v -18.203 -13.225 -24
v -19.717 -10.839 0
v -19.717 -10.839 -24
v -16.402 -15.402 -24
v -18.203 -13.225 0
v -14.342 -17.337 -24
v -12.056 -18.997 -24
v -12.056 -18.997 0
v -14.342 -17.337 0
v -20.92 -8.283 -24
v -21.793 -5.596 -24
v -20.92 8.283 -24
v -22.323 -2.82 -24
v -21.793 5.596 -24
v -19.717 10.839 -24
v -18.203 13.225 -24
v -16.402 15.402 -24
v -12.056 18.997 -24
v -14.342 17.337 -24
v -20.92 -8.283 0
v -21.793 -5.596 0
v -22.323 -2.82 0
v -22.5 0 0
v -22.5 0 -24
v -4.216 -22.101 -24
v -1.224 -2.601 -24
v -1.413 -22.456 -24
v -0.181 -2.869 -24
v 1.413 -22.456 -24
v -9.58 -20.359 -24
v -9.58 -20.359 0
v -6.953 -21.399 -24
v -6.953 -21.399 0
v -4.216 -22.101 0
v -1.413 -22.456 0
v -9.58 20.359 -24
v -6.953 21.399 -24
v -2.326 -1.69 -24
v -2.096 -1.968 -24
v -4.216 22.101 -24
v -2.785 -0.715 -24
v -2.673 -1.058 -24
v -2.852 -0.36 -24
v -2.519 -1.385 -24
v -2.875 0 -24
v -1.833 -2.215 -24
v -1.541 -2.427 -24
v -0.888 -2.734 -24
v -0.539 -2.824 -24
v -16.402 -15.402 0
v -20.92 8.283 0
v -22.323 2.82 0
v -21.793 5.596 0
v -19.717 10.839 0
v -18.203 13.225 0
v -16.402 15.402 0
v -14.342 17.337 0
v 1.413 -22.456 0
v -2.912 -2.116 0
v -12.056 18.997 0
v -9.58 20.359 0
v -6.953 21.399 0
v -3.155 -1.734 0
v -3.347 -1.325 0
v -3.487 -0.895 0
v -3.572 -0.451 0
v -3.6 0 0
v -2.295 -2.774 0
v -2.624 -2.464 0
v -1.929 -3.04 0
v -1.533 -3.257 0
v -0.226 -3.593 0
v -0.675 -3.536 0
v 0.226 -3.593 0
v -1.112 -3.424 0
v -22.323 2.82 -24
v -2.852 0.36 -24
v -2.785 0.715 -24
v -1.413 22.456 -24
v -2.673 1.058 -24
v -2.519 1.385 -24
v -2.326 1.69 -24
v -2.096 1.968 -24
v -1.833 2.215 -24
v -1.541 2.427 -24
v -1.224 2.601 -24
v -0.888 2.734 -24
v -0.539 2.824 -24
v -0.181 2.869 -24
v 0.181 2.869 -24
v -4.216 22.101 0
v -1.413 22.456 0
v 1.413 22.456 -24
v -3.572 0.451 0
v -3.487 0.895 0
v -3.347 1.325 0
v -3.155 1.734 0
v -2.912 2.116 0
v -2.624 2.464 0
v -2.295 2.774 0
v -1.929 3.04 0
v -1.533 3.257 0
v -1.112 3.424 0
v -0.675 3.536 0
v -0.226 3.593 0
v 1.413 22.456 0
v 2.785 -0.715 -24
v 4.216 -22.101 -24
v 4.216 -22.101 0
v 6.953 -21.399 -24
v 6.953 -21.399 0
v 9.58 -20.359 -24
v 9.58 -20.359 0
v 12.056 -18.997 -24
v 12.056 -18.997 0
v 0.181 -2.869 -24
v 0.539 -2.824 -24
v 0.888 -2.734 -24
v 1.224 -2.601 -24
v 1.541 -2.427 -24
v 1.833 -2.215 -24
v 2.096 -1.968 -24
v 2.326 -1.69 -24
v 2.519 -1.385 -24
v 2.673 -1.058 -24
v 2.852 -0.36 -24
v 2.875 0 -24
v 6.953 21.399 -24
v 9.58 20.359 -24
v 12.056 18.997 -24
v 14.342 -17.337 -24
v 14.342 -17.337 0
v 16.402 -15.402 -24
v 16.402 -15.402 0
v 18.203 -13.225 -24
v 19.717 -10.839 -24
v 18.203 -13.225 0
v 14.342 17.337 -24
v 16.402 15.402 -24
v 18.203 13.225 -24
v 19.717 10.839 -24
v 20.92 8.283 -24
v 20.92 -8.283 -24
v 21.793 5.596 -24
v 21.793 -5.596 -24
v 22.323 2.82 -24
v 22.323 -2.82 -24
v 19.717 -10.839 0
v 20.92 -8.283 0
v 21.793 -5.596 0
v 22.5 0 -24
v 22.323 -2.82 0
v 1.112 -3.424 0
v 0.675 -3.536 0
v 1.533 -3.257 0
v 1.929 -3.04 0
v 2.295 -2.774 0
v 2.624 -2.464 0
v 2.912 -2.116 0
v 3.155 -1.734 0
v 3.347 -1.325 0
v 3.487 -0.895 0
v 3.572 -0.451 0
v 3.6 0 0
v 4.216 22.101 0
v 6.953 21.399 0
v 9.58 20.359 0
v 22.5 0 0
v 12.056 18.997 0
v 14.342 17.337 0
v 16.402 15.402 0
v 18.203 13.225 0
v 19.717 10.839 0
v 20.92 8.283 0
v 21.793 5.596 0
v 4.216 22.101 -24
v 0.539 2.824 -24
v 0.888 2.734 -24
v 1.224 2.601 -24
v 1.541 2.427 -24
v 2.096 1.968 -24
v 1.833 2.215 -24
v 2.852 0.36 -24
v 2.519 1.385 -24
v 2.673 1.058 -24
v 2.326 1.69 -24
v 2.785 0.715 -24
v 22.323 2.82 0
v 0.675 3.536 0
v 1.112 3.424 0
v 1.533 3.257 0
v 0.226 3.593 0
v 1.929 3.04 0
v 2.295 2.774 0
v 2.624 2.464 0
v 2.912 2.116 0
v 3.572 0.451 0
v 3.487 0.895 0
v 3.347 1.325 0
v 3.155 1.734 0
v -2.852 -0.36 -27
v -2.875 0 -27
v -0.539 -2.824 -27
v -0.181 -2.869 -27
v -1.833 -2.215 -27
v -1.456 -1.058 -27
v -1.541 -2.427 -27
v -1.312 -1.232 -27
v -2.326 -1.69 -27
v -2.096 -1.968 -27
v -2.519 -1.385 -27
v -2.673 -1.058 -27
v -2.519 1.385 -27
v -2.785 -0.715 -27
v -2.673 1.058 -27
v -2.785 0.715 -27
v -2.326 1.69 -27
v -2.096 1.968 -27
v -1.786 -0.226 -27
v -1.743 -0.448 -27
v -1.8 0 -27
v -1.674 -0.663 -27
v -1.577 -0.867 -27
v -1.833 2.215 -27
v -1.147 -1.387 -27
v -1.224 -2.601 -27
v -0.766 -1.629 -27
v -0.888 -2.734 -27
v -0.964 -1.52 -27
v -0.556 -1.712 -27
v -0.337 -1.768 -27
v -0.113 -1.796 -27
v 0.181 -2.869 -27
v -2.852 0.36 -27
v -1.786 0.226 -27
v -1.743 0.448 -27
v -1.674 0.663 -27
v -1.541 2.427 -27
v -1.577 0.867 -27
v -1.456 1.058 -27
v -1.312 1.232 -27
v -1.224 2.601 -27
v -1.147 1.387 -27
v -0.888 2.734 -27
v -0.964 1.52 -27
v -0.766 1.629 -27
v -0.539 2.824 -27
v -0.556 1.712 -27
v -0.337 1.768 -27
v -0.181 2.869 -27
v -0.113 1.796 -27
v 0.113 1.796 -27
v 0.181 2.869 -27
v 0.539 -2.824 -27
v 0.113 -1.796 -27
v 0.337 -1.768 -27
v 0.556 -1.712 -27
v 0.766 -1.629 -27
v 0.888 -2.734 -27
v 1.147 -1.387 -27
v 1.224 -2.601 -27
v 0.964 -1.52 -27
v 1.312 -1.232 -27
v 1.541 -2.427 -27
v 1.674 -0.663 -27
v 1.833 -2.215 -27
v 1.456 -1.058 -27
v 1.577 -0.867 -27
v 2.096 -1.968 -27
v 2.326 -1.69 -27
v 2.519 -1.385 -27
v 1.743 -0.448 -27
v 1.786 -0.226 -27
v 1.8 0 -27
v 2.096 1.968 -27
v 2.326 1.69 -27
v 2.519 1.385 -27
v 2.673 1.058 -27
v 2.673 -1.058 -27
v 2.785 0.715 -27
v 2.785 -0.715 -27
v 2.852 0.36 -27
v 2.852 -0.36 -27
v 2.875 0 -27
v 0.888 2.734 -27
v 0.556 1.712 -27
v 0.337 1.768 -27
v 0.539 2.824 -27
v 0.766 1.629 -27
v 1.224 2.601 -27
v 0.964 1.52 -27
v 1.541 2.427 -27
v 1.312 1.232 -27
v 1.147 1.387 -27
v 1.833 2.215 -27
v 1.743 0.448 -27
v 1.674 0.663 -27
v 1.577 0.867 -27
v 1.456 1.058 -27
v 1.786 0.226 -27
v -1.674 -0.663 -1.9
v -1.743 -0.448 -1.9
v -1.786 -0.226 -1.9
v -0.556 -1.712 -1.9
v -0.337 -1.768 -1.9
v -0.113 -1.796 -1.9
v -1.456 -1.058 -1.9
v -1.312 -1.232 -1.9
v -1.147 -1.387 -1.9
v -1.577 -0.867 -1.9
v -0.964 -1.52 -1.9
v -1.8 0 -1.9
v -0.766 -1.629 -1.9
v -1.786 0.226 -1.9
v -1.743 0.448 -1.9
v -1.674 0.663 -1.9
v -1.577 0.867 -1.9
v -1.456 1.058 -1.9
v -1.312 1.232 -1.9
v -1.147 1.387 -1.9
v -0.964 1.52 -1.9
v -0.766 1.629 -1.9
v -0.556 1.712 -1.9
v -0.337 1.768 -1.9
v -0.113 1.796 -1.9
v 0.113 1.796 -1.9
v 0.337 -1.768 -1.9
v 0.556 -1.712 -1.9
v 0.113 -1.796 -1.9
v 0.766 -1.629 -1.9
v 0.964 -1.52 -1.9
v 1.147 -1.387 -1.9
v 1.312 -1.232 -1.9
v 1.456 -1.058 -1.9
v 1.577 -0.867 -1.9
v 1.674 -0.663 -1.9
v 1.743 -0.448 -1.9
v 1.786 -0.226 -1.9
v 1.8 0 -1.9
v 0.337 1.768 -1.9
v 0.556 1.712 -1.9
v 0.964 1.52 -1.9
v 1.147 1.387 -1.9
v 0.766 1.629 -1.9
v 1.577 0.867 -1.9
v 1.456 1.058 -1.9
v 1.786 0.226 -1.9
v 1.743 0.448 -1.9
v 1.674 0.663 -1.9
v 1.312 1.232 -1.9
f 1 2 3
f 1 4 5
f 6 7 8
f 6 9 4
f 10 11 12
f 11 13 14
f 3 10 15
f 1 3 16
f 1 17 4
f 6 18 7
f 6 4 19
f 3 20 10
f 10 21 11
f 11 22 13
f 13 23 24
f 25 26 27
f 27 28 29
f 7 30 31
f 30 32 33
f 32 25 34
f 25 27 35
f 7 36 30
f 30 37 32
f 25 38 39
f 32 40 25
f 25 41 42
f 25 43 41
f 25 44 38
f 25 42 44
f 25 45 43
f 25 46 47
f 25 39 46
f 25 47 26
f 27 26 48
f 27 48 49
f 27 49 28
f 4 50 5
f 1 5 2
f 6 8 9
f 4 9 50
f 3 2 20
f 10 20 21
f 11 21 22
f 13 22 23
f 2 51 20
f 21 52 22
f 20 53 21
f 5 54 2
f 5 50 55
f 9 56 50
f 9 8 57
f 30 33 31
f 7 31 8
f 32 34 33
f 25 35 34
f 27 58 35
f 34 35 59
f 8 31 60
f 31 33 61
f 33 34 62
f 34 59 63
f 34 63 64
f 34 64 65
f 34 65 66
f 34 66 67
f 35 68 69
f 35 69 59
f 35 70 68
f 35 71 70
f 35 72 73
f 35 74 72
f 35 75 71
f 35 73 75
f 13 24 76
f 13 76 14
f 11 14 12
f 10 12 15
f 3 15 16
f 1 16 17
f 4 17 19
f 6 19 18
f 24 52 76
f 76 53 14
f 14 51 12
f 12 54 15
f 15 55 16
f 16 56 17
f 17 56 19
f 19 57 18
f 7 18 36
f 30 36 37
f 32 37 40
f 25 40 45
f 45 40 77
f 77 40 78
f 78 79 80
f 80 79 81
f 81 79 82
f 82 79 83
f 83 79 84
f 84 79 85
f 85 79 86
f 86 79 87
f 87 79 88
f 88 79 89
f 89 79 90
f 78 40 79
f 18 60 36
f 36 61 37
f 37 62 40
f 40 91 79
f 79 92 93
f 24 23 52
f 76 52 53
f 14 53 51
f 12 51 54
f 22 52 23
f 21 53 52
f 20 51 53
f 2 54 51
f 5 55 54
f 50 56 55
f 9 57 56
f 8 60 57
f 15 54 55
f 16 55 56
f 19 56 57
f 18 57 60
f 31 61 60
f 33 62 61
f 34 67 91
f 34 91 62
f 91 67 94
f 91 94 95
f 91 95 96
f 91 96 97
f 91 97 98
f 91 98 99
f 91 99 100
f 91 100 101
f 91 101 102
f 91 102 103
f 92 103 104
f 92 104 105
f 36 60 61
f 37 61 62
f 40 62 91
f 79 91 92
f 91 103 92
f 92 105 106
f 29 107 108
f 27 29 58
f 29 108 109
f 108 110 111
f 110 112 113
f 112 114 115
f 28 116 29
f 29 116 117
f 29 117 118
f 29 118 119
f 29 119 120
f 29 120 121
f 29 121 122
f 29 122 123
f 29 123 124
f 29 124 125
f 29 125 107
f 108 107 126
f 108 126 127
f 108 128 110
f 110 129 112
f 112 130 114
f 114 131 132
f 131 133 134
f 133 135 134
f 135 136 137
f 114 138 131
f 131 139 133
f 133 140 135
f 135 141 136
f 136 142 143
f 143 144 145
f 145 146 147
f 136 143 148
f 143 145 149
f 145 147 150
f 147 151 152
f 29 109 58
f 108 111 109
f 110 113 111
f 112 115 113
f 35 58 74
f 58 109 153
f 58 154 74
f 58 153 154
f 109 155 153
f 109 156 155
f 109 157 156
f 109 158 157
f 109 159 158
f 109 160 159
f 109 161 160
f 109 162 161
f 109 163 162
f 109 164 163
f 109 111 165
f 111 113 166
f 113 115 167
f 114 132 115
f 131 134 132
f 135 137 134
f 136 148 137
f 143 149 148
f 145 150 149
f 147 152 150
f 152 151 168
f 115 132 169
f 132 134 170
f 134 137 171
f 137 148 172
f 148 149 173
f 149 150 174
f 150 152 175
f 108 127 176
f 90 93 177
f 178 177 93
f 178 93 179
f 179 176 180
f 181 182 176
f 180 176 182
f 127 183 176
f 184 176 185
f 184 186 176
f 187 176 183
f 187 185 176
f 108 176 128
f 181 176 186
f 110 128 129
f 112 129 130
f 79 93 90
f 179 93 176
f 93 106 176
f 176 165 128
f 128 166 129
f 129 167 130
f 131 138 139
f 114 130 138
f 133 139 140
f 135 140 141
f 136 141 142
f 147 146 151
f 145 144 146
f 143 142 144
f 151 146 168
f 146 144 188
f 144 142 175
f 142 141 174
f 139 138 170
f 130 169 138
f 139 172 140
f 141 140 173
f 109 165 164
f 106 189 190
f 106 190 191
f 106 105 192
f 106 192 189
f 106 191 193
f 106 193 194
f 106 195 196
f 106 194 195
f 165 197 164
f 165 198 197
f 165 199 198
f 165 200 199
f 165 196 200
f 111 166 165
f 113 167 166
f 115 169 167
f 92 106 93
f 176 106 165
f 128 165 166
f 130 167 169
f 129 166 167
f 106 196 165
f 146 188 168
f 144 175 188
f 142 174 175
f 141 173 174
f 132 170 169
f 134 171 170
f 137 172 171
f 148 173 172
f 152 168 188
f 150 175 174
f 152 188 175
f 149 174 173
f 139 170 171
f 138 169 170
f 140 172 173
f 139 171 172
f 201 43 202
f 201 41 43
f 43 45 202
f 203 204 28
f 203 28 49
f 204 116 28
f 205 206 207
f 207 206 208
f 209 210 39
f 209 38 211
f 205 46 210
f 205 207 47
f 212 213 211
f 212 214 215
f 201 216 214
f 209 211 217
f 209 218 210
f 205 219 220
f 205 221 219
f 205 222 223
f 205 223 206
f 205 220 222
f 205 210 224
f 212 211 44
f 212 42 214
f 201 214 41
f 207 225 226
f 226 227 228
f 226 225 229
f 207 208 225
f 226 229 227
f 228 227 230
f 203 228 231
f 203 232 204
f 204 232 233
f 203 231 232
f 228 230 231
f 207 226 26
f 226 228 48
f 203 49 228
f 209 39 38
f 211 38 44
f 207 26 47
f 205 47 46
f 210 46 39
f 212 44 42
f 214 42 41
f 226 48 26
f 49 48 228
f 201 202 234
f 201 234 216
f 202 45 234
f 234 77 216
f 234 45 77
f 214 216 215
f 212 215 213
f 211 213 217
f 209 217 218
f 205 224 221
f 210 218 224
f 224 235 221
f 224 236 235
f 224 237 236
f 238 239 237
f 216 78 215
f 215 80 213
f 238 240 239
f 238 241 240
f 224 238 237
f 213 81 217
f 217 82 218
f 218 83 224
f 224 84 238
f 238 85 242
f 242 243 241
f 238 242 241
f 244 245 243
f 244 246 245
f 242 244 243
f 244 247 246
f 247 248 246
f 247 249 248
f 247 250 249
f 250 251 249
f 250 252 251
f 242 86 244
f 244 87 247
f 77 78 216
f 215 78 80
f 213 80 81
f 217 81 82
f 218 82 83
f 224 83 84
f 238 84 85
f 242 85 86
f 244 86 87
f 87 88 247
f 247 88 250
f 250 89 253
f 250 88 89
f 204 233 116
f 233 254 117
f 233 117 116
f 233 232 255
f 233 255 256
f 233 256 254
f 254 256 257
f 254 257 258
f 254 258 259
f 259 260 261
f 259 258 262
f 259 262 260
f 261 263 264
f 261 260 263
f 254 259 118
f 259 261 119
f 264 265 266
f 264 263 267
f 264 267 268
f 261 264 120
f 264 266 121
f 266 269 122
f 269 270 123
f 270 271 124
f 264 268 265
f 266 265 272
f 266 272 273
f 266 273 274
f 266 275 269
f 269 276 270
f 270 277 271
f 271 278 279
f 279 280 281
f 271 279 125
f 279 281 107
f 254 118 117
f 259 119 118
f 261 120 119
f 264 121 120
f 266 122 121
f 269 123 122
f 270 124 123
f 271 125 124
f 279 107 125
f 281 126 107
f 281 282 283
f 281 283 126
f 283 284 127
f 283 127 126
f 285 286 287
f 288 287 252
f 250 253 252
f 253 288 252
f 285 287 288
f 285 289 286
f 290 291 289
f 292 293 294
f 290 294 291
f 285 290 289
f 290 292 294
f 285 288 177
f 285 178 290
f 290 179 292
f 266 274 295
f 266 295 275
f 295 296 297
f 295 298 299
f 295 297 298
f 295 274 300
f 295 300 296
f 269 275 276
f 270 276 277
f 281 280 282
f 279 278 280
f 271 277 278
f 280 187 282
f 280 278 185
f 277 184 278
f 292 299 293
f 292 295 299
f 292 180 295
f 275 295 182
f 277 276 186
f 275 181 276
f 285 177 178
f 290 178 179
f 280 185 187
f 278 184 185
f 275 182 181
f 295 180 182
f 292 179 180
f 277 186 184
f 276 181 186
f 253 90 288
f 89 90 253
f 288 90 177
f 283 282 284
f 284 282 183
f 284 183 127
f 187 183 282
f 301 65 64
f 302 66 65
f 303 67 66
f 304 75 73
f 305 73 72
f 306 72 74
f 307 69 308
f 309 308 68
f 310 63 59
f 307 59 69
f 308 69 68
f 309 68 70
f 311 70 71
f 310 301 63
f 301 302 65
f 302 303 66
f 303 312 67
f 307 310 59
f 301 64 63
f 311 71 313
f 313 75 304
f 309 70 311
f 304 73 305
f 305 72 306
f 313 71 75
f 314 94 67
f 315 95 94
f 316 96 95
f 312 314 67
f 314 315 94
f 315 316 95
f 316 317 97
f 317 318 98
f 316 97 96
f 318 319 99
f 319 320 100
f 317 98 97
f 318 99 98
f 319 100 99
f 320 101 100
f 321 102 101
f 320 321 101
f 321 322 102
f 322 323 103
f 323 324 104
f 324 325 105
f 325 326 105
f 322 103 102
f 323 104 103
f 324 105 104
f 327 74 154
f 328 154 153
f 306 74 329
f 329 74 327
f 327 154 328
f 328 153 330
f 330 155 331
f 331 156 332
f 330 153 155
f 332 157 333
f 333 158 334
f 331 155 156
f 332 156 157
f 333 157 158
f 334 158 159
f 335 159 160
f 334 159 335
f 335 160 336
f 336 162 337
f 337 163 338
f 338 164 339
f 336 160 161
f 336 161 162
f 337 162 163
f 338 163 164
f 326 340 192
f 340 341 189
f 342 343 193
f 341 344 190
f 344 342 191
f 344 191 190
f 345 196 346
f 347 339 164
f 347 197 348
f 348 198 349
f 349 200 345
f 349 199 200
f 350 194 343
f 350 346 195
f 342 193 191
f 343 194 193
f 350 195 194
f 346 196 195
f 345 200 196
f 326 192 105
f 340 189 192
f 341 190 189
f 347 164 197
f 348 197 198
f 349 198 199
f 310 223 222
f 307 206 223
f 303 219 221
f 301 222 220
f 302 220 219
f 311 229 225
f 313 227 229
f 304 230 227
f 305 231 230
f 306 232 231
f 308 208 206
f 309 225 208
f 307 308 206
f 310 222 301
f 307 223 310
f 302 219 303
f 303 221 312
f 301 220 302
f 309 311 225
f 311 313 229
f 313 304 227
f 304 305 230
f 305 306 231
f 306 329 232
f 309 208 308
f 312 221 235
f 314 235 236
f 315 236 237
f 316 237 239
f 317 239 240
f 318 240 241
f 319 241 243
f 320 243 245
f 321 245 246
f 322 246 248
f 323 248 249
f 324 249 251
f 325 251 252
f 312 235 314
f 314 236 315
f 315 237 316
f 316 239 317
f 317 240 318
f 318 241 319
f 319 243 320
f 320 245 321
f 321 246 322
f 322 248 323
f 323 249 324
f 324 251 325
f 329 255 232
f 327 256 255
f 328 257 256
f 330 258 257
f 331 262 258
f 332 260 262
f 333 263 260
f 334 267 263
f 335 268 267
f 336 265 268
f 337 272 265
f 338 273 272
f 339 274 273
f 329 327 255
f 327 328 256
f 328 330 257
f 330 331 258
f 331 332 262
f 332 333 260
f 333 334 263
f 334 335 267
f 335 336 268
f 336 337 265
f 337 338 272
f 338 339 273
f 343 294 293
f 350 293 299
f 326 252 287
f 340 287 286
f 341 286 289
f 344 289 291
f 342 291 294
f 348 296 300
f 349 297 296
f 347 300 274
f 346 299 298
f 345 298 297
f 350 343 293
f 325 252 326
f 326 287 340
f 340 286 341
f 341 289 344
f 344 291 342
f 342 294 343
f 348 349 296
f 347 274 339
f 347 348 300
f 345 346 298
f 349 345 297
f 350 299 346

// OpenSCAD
$fn = 50;


difference() {
	union() {
		translate(v = [0, 0, -24.0000000000]) {
			cylinder(h = 24, r = 22.5000000000);
		}
		#translate(v = [0, 0, -27.0000000000]) {
			cylinder(h = 27, r = 2.8750000000);
		}
	}
	union() {
		translate(v = [0, 0, 0]) {
			rotate(a = [0, 0, 0]) {
				difference() {
					union() {
						translate(v = [0, 0, -27.0000000000]) {
							cylinder(h = 27, r = 1.5000000000);
						}
						translate(v = [0, 0, -1.9000000000]) {
							cylinder(h = 1.9000000000, r1 = 1.8000000000, r2 = 3.6000000000);
						}
						translate(v = [0, 0, -27.0000000000]) {
							cylinder(h = 27, r = 1.8000000000);
						}
						translate(v = [0, 0, -27.0000000000]) {
							cylinder(h = 27, r = 1.5000000000);
						}
					}
					union();
				}
			}
		}
	}
}
